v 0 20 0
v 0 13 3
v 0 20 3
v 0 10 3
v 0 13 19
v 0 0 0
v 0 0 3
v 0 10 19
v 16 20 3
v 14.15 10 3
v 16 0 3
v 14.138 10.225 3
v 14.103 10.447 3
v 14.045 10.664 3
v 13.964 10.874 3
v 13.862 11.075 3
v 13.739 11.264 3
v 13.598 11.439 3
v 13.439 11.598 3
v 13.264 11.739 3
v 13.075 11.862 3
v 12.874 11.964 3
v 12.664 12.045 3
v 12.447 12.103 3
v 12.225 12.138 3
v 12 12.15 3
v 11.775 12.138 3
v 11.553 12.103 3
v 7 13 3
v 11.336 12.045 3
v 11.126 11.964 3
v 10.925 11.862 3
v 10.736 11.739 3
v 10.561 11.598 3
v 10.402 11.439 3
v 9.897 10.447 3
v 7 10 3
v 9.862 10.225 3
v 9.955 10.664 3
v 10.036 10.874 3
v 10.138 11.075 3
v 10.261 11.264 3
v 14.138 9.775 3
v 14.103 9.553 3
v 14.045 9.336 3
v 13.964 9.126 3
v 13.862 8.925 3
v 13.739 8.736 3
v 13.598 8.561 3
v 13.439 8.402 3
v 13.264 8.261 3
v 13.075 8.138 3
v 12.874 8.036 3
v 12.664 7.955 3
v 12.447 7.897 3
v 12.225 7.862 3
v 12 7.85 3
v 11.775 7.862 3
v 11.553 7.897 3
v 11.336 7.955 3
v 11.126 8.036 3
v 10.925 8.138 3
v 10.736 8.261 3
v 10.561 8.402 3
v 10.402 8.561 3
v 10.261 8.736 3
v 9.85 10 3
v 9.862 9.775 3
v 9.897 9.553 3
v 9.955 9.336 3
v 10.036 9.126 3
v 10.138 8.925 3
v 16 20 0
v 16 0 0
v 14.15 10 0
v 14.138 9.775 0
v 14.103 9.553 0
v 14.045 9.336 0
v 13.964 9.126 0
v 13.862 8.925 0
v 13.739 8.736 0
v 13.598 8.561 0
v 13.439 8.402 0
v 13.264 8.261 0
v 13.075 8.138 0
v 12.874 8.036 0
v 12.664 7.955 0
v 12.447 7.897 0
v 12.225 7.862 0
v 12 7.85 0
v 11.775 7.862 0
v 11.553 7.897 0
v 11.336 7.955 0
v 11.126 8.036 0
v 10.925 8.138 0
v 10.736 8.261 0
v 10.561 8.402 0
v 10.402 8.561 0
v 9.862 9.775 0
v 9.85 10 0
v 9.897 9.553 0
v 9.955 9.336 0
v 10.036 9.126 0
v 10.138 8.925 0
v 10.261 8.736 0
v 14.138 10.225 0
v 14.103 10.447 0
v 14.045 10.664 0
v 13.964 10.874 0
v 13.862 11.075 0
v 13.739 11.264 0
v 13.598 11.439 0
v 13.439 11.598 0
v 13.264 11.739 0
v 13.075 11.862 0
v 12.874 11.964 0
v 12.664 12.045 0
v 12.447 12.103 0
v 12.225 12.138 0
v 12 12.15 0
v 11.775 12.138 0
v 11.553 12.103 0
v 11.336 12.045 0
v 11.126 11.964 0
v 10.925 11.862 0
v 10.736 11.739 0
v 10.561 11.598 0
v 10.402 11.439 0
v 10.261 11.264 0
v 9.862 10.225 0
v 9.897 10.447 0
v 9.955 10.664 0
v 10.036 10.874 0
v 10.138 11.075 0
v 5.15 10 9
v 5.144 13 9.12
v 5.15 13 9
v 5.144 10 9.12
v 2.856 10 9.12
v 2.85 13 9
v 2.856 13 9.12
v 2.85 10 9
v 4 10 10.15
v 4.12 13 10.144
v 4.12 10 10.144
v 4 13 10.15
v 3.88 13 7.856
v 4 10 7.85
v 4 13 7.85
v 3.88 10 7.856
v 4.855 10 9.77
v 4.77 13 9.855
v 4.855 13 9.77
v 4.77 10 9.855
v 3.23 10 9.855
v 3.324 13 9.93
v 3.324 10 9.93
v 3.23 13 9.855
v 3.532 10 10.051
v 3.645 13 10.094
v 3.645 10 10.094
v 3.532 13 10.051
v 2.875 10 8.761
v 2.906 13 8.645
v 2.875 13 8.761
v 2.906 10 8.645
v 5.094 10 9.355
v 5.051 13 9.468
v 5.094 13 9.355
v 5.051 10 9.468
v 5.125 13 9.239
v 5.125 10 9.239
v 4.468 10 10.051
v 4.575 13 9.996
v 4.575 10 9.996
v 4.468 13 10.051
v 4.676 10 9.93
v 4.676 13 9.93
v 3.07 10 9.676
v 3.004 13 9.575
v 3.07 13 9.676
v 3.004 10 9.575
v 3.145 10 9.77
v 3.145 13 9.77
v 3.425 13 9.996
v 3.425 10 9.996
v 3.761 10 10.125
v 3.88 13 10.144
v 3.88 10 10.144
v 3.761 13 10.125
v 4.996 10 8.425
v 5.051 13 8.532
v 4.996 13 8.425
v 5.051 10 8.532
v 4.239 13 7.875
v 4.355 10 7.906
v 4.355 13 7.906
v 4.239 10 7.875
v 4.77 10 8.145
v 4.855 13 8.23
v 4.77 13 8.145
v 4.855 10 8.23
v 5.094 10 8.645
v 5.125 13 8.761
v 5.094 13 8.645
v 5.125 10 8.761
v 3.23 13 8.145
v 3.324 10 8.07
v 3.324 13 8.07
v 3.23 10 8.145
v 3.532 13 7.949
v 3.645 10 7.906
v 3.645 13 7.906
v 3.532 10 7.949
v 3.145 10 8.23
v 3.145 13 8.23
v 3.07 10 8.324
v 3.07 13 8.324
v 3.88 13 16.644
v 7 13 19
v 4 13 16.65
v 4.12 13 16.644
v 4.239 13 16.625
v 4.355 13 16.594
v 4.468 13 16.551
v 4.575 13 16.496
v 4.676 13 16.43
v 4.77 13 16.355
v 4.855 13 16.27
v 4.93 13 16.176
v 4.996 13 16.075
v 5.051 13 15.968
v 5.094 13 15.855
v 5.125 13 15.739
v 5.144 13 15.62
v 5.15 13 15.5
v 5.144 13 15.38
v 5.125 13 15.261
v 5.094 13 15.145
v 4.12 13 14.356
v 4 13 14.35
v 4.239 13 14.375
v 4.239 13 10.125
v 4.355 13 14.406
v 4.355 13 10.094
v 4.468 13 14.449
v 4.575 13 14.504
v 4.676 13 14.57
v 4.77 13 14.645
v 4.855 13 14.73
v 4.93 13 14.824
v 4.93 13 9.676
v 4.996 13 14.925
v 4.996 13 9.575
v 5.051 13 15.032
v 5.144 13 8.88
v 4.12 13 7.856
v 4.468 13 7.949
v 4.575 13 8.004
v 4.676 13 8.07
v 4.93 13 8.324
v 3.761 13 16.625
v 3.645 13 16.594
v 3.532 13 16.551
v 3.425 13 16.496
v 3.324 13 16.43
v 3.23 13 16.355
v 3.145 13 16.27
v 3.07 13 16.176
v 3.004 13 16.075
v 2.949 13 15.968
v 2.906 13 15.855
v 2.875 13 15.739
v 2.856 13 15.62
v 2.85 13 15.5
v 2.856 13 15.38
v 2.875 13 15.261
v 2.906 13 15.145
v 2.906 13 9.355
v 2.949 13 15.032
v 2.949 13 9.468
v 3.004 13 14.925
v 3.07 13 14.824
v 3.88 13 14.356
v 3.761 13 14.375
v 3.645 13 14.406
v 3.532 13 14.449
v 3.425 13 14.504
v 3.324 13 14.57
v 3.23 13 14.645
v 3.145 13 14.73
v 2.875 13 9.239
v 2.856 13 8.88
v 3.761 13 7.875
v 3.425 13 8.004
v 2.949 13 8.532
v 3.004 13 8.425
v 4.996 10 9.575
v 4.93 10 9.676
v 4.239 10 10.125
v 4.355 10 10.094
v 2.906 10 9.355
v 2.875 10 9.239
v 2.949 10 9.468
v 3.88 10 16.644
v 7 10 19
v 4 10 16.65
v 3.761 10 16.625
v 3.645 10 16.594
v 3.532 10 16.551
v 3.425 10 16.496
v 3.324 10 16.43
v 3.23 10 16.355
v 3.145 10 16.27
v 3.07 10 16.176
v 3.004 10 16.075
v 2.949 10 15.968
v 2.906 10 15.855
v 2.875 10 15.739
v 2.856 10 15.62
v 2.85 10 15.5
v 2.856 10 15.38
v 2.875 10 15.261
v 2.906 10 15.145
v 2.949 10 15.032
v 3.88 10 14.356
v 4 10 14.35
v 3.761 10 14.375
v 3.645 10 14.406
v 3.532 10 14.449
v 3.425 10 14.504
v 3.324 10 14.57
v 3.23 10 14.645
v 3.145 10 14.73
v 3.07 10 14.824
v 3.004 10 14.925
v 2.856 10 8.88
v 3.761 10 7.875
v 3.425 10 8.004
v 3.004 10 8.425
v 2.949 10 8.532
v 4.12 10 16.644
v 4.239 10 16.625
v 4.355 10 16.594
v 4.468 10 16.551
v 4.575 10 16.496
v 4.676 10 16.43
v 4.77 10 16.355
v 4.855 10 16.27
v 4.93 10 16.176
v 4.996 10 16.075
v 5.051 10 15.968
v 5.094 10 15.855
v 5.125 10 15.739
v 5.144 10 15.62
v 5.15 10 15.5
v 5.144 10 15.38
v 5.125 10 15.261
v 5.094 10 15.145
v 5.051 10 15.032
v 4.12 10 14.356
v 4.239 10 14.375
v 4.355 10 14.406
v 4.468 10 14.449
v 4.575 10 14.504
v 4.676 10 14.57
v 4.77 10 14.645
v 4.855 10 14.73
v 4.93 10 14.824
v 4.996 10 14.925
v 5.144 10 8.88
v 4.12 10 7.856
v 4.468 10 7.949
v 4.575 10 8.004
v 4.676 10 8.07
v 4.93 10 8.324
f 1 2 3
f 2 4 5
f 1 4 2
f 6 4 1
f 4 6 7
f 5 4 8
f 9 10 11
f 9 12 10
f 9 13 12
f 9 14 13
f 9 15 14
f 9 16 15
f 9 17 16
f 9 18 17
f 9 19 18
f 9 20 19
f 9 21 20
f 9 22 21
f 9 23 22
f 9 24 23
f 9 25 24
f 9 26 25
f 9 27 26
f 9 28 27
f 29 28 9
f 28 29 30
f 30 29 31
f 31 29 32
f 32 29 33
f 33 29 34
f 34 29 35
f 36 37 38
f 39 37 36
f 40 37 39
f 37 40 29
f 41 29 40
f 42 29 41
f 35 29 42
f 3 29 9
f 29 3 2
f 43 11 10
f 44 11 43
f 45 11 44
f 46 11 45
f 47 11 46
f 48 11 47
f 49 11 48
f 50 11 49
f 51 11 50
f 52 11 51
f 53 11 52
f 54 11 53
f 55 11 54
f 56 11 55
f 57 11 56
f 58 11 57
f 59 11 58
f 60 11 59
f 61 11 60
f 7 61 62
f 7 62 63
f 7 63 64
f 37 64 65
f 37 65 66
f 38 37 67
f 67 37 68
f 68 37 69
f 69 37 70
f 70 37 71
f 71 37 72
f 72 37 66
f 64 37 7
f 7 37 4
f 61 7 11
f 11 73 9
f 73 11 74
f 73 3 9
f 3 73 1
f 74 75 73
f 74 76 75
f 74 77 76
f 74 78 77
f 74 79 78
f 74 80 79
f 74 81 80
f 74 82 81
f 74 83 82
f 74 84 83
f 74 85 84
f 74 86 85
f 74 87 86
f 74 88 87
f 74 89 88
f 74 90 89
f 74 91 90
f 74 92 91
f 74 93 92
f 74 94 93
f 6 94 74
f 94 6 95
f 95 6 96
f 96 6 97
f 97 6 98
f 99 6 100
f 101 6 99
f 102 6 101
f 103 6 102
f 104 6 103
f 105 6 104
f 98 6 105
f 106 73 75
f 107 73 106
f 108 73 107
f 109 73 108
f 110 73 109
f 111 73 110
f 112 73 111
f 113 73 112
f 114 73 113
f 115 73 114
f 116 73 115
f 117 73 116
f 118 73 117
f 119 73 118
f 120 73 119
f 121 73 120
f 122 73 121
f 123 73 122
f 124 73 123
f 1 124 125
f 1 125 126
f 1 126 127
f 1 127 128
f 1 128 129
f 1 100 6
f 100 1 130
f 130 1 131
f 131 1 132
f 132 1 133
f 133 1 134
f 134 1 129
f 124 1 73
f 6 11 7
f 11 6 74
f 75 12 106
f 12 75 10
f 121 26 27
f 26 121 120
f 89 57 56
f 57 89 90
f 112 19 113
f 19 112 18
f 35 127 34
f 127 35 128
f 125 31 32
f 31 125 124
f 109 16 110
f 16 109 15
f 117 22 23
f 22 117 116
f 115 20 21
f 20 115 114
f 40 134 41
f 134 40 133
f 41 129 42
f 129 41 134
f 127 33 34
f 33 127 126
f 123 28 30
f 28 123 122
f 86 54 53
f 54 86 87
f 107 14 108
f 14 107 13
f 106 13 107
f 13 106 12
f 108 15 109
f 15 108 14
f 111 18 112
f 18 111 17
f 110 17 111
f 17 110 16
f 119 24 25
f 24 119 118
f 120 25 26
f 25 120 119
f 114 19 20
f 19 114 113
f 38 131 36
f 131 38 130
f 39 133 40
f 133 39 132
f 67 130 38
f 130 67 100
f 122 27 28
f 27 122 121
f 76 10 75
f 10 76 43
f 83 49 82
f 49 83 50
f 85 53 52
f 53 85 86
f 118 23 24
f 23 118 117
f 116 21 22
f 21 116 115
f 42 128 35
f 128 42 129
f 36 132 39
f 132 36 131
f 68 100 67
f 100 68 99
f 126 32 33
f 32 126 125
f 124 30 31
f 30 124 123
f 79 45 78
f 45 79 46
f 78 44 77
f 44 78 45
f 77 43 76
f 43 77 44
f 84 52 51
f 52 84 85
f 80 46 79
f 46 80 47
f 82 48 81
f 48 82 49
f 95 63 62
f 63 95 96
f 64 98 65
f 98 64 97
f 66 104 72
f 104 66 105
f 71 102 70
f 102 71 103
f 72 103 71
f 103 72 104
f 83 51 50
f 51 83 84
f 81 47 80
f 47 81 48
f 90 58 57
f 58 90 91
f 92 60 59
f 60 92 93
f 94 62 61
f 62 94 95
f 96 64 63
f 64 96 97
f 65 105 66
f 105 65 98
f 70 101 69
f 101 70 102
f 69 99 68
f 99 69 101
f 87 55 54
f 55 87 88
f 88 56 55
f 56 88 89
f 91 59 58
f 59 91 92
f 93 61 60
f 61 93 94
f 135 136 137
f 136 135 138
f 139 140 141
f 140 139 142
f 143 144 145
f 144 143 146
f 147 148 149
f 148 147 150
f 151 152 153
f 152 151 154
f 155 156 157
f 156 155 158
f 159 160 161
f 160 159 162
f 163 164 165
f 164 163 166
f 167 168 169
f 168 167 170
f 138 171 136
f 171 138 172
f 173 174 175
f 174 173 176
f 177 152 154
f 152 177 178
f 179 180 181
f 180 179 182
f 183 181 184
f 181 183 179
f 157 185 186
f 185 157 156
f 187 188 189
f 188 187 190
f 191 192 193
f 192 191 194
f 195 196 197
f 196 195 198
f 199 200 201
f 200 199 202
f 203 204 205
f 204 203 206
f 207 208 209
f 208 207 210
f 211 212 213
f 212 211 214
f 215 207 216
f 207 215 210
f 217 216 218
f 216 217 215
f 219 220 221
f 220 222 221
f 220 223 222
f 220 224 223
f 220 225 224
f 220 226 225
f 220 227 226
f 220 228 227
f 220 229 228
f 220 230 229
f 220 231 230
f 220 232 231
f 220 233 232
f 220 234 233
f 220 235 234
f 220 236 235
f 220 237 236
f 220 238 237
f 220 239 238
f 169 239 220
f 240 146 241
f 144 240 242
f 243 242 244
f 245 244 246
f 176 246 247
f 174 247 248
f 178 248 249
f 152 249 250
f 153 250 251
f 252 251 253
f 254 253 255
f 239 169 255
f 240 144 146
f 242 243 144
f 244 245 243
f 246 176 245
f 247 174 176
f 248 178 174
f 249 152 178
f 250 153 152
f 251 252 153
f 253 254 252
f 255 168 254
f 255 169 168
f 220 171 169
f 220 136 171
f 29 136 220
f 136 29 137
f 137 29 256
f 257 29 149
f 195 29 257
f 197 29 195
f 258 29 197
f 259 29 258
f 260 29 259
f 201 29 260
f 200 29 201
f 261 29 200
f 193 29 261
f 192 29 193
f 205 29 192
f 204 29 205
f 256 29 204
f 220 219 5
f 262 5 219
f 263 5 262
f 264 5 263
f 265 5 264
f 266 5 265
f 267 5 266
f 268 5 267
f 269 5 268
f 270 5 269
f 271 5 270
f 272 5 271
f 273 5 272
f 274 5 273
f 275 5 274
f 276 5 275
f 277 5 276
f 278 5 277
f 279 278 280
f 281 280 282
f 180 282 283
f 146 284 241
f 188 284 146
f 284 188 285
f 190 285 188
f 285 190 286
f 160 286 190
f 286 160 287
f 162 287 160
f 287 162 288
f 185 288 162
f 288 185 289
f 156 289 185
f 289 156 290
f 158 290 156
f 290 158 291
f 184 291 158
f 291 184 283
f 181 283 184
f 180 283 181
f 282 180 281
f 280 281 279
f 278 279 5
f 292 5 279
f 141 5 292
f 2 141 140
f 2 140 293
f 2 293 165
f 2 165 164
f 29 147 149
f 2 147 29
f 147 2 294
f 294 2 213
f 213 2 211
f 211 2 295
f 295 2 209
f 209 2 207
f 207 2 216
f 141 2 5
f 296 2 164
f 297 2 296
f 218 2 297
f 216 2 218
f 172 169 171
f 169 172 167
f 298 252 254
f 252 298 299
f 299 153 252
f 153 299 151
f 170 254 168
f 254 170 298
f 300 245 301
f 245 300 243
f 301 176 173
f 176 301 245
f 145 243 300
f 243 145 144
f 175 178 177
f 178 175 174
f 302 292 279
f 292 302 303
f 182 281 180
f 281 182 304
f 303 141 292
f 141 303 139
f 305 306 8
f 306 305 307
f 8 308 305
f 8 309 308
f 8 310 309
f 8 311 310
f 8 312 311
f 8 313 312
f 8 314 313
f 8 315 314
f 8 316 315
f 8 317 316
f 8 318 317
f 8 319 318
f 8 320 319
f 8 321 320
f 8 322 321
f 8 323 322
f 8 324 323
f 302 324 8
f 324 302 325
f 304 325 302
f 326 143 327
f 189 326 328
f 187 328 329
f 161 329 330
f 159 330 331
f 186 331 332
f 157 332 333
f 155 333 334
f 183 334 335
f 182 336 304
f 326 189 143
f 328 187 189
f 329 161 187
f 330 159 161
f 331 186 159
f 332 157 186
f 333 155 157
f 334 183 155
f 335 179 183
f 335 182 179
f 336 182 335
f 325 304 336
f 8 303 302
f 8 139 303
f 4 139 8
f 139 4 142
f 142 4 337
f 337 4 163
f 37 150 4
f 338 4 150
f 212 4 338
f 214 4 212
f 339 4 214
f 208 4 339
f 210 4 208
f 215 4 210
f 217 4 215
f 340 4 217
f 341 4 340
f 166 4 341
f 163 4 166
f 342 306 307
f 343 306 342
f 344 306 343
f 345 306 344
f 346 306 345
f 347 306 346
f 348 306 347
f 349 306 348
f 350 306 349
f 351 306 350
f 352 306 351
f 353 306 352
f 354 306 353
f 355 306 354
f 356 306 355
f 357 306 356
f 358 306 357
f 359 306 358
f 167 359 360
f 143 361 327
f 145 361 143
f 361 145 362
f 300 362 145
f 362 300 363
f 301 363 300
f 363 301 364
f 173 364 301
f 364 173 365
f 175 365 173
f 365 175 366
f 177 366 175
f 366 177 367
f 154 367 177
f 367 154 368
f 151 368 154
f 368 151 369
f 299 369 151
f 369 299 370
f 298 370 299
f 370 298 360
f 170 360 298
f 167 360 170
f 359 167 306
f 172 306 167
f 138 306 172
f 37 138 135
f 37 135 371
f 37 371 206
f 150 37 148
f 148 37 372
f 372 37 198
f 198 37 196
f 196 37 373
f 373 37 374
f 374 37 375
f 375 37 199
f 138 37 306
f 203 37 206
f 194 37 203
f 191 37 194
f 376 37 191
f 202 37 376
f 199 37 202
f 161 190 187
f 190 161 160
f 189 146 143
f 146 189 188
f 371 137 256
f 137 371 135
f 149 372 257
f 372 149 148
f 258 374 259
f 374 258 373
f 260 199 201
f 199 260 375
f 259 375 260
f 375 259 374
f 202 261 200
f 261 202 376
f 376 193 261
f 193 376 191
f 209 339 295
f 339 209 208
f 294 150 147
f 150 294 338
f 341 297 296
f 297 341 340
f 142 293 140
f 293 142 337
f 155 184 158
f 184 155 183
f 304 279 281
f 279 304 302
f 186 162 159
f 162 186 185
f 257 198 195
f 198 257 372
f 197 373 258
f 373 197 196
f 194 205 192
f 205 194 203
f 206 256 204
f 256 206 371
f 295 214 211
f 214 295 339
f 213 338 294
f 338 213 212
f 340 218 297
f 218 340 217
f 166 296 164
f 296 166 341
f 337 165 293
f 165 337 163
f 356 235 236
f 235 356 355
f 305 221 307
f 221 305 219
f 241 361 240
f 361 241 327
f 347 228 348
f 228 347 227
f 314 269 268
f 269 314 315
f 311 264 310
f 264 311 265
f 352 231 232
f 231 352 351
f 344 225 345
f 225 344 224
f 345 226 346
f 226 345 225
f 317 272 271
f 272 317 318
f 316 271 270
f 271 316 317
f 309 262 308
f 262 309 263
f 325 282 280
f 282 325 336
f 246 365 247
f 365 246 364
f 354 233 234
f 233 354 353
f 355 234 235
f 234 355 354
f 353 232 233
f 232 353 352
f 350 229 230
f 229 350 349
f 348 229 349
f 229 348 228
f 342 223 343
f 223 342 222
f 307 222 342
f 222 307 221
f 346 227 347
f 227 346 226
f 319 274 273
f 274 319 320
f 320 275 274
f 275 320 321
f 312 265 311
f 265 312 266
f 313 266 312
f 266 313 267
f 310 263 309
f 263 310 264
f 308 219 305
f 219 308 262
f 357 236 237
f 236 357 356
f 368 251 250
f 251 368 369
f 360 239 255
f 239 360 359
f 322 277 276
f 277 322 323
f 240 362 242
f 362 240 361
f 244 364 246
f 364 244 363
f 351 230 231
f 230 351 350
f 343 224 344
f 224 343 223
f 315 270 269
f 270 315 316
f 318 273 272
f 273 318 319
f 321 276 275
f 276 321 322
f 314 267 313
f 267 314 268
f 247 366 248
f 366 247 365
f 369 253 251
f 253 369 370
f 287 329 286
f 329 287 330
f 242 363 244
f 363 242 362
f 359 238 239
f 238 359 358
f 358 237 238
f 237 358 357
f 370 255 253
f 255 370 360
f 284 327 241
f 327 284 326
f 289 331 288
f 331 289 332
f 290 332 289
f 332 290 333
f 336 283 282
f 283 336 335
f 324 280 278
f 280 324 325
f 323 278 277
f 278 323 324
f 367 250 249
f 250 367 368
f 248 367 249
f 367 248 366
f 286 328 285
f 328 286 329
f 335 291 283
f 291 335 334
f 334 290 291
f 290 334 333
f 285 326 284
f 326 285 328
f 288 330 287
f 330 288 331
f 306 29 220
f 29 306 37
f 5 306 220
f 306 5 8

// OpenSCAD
$fn = 60;
thick = 3.0;

dia_rail = 4.3;
dia_switch = 2.3;

// --------------------------------------------

difference() {
	cube([16, 20, thick]);
	translate([12, 10, 0]) {
		cylinder(h = thick, d = dia_rail);
	}
}

translate([0, 10 + thick, 0]) {
	rotate([90, 0, 0]) {
		difference()  {
			cube([7, 16 + thick, thick]);	
			translate([0, thick + 6, 0]) {
				translate([4, 0, 0]) {
					cylinder(h = thick, d = dia_switch);
				}
				translate([4, 6.5, 0]) {
					cylinder(h = thick, d = dia_switch);
				}
			}
		}
	}
}
